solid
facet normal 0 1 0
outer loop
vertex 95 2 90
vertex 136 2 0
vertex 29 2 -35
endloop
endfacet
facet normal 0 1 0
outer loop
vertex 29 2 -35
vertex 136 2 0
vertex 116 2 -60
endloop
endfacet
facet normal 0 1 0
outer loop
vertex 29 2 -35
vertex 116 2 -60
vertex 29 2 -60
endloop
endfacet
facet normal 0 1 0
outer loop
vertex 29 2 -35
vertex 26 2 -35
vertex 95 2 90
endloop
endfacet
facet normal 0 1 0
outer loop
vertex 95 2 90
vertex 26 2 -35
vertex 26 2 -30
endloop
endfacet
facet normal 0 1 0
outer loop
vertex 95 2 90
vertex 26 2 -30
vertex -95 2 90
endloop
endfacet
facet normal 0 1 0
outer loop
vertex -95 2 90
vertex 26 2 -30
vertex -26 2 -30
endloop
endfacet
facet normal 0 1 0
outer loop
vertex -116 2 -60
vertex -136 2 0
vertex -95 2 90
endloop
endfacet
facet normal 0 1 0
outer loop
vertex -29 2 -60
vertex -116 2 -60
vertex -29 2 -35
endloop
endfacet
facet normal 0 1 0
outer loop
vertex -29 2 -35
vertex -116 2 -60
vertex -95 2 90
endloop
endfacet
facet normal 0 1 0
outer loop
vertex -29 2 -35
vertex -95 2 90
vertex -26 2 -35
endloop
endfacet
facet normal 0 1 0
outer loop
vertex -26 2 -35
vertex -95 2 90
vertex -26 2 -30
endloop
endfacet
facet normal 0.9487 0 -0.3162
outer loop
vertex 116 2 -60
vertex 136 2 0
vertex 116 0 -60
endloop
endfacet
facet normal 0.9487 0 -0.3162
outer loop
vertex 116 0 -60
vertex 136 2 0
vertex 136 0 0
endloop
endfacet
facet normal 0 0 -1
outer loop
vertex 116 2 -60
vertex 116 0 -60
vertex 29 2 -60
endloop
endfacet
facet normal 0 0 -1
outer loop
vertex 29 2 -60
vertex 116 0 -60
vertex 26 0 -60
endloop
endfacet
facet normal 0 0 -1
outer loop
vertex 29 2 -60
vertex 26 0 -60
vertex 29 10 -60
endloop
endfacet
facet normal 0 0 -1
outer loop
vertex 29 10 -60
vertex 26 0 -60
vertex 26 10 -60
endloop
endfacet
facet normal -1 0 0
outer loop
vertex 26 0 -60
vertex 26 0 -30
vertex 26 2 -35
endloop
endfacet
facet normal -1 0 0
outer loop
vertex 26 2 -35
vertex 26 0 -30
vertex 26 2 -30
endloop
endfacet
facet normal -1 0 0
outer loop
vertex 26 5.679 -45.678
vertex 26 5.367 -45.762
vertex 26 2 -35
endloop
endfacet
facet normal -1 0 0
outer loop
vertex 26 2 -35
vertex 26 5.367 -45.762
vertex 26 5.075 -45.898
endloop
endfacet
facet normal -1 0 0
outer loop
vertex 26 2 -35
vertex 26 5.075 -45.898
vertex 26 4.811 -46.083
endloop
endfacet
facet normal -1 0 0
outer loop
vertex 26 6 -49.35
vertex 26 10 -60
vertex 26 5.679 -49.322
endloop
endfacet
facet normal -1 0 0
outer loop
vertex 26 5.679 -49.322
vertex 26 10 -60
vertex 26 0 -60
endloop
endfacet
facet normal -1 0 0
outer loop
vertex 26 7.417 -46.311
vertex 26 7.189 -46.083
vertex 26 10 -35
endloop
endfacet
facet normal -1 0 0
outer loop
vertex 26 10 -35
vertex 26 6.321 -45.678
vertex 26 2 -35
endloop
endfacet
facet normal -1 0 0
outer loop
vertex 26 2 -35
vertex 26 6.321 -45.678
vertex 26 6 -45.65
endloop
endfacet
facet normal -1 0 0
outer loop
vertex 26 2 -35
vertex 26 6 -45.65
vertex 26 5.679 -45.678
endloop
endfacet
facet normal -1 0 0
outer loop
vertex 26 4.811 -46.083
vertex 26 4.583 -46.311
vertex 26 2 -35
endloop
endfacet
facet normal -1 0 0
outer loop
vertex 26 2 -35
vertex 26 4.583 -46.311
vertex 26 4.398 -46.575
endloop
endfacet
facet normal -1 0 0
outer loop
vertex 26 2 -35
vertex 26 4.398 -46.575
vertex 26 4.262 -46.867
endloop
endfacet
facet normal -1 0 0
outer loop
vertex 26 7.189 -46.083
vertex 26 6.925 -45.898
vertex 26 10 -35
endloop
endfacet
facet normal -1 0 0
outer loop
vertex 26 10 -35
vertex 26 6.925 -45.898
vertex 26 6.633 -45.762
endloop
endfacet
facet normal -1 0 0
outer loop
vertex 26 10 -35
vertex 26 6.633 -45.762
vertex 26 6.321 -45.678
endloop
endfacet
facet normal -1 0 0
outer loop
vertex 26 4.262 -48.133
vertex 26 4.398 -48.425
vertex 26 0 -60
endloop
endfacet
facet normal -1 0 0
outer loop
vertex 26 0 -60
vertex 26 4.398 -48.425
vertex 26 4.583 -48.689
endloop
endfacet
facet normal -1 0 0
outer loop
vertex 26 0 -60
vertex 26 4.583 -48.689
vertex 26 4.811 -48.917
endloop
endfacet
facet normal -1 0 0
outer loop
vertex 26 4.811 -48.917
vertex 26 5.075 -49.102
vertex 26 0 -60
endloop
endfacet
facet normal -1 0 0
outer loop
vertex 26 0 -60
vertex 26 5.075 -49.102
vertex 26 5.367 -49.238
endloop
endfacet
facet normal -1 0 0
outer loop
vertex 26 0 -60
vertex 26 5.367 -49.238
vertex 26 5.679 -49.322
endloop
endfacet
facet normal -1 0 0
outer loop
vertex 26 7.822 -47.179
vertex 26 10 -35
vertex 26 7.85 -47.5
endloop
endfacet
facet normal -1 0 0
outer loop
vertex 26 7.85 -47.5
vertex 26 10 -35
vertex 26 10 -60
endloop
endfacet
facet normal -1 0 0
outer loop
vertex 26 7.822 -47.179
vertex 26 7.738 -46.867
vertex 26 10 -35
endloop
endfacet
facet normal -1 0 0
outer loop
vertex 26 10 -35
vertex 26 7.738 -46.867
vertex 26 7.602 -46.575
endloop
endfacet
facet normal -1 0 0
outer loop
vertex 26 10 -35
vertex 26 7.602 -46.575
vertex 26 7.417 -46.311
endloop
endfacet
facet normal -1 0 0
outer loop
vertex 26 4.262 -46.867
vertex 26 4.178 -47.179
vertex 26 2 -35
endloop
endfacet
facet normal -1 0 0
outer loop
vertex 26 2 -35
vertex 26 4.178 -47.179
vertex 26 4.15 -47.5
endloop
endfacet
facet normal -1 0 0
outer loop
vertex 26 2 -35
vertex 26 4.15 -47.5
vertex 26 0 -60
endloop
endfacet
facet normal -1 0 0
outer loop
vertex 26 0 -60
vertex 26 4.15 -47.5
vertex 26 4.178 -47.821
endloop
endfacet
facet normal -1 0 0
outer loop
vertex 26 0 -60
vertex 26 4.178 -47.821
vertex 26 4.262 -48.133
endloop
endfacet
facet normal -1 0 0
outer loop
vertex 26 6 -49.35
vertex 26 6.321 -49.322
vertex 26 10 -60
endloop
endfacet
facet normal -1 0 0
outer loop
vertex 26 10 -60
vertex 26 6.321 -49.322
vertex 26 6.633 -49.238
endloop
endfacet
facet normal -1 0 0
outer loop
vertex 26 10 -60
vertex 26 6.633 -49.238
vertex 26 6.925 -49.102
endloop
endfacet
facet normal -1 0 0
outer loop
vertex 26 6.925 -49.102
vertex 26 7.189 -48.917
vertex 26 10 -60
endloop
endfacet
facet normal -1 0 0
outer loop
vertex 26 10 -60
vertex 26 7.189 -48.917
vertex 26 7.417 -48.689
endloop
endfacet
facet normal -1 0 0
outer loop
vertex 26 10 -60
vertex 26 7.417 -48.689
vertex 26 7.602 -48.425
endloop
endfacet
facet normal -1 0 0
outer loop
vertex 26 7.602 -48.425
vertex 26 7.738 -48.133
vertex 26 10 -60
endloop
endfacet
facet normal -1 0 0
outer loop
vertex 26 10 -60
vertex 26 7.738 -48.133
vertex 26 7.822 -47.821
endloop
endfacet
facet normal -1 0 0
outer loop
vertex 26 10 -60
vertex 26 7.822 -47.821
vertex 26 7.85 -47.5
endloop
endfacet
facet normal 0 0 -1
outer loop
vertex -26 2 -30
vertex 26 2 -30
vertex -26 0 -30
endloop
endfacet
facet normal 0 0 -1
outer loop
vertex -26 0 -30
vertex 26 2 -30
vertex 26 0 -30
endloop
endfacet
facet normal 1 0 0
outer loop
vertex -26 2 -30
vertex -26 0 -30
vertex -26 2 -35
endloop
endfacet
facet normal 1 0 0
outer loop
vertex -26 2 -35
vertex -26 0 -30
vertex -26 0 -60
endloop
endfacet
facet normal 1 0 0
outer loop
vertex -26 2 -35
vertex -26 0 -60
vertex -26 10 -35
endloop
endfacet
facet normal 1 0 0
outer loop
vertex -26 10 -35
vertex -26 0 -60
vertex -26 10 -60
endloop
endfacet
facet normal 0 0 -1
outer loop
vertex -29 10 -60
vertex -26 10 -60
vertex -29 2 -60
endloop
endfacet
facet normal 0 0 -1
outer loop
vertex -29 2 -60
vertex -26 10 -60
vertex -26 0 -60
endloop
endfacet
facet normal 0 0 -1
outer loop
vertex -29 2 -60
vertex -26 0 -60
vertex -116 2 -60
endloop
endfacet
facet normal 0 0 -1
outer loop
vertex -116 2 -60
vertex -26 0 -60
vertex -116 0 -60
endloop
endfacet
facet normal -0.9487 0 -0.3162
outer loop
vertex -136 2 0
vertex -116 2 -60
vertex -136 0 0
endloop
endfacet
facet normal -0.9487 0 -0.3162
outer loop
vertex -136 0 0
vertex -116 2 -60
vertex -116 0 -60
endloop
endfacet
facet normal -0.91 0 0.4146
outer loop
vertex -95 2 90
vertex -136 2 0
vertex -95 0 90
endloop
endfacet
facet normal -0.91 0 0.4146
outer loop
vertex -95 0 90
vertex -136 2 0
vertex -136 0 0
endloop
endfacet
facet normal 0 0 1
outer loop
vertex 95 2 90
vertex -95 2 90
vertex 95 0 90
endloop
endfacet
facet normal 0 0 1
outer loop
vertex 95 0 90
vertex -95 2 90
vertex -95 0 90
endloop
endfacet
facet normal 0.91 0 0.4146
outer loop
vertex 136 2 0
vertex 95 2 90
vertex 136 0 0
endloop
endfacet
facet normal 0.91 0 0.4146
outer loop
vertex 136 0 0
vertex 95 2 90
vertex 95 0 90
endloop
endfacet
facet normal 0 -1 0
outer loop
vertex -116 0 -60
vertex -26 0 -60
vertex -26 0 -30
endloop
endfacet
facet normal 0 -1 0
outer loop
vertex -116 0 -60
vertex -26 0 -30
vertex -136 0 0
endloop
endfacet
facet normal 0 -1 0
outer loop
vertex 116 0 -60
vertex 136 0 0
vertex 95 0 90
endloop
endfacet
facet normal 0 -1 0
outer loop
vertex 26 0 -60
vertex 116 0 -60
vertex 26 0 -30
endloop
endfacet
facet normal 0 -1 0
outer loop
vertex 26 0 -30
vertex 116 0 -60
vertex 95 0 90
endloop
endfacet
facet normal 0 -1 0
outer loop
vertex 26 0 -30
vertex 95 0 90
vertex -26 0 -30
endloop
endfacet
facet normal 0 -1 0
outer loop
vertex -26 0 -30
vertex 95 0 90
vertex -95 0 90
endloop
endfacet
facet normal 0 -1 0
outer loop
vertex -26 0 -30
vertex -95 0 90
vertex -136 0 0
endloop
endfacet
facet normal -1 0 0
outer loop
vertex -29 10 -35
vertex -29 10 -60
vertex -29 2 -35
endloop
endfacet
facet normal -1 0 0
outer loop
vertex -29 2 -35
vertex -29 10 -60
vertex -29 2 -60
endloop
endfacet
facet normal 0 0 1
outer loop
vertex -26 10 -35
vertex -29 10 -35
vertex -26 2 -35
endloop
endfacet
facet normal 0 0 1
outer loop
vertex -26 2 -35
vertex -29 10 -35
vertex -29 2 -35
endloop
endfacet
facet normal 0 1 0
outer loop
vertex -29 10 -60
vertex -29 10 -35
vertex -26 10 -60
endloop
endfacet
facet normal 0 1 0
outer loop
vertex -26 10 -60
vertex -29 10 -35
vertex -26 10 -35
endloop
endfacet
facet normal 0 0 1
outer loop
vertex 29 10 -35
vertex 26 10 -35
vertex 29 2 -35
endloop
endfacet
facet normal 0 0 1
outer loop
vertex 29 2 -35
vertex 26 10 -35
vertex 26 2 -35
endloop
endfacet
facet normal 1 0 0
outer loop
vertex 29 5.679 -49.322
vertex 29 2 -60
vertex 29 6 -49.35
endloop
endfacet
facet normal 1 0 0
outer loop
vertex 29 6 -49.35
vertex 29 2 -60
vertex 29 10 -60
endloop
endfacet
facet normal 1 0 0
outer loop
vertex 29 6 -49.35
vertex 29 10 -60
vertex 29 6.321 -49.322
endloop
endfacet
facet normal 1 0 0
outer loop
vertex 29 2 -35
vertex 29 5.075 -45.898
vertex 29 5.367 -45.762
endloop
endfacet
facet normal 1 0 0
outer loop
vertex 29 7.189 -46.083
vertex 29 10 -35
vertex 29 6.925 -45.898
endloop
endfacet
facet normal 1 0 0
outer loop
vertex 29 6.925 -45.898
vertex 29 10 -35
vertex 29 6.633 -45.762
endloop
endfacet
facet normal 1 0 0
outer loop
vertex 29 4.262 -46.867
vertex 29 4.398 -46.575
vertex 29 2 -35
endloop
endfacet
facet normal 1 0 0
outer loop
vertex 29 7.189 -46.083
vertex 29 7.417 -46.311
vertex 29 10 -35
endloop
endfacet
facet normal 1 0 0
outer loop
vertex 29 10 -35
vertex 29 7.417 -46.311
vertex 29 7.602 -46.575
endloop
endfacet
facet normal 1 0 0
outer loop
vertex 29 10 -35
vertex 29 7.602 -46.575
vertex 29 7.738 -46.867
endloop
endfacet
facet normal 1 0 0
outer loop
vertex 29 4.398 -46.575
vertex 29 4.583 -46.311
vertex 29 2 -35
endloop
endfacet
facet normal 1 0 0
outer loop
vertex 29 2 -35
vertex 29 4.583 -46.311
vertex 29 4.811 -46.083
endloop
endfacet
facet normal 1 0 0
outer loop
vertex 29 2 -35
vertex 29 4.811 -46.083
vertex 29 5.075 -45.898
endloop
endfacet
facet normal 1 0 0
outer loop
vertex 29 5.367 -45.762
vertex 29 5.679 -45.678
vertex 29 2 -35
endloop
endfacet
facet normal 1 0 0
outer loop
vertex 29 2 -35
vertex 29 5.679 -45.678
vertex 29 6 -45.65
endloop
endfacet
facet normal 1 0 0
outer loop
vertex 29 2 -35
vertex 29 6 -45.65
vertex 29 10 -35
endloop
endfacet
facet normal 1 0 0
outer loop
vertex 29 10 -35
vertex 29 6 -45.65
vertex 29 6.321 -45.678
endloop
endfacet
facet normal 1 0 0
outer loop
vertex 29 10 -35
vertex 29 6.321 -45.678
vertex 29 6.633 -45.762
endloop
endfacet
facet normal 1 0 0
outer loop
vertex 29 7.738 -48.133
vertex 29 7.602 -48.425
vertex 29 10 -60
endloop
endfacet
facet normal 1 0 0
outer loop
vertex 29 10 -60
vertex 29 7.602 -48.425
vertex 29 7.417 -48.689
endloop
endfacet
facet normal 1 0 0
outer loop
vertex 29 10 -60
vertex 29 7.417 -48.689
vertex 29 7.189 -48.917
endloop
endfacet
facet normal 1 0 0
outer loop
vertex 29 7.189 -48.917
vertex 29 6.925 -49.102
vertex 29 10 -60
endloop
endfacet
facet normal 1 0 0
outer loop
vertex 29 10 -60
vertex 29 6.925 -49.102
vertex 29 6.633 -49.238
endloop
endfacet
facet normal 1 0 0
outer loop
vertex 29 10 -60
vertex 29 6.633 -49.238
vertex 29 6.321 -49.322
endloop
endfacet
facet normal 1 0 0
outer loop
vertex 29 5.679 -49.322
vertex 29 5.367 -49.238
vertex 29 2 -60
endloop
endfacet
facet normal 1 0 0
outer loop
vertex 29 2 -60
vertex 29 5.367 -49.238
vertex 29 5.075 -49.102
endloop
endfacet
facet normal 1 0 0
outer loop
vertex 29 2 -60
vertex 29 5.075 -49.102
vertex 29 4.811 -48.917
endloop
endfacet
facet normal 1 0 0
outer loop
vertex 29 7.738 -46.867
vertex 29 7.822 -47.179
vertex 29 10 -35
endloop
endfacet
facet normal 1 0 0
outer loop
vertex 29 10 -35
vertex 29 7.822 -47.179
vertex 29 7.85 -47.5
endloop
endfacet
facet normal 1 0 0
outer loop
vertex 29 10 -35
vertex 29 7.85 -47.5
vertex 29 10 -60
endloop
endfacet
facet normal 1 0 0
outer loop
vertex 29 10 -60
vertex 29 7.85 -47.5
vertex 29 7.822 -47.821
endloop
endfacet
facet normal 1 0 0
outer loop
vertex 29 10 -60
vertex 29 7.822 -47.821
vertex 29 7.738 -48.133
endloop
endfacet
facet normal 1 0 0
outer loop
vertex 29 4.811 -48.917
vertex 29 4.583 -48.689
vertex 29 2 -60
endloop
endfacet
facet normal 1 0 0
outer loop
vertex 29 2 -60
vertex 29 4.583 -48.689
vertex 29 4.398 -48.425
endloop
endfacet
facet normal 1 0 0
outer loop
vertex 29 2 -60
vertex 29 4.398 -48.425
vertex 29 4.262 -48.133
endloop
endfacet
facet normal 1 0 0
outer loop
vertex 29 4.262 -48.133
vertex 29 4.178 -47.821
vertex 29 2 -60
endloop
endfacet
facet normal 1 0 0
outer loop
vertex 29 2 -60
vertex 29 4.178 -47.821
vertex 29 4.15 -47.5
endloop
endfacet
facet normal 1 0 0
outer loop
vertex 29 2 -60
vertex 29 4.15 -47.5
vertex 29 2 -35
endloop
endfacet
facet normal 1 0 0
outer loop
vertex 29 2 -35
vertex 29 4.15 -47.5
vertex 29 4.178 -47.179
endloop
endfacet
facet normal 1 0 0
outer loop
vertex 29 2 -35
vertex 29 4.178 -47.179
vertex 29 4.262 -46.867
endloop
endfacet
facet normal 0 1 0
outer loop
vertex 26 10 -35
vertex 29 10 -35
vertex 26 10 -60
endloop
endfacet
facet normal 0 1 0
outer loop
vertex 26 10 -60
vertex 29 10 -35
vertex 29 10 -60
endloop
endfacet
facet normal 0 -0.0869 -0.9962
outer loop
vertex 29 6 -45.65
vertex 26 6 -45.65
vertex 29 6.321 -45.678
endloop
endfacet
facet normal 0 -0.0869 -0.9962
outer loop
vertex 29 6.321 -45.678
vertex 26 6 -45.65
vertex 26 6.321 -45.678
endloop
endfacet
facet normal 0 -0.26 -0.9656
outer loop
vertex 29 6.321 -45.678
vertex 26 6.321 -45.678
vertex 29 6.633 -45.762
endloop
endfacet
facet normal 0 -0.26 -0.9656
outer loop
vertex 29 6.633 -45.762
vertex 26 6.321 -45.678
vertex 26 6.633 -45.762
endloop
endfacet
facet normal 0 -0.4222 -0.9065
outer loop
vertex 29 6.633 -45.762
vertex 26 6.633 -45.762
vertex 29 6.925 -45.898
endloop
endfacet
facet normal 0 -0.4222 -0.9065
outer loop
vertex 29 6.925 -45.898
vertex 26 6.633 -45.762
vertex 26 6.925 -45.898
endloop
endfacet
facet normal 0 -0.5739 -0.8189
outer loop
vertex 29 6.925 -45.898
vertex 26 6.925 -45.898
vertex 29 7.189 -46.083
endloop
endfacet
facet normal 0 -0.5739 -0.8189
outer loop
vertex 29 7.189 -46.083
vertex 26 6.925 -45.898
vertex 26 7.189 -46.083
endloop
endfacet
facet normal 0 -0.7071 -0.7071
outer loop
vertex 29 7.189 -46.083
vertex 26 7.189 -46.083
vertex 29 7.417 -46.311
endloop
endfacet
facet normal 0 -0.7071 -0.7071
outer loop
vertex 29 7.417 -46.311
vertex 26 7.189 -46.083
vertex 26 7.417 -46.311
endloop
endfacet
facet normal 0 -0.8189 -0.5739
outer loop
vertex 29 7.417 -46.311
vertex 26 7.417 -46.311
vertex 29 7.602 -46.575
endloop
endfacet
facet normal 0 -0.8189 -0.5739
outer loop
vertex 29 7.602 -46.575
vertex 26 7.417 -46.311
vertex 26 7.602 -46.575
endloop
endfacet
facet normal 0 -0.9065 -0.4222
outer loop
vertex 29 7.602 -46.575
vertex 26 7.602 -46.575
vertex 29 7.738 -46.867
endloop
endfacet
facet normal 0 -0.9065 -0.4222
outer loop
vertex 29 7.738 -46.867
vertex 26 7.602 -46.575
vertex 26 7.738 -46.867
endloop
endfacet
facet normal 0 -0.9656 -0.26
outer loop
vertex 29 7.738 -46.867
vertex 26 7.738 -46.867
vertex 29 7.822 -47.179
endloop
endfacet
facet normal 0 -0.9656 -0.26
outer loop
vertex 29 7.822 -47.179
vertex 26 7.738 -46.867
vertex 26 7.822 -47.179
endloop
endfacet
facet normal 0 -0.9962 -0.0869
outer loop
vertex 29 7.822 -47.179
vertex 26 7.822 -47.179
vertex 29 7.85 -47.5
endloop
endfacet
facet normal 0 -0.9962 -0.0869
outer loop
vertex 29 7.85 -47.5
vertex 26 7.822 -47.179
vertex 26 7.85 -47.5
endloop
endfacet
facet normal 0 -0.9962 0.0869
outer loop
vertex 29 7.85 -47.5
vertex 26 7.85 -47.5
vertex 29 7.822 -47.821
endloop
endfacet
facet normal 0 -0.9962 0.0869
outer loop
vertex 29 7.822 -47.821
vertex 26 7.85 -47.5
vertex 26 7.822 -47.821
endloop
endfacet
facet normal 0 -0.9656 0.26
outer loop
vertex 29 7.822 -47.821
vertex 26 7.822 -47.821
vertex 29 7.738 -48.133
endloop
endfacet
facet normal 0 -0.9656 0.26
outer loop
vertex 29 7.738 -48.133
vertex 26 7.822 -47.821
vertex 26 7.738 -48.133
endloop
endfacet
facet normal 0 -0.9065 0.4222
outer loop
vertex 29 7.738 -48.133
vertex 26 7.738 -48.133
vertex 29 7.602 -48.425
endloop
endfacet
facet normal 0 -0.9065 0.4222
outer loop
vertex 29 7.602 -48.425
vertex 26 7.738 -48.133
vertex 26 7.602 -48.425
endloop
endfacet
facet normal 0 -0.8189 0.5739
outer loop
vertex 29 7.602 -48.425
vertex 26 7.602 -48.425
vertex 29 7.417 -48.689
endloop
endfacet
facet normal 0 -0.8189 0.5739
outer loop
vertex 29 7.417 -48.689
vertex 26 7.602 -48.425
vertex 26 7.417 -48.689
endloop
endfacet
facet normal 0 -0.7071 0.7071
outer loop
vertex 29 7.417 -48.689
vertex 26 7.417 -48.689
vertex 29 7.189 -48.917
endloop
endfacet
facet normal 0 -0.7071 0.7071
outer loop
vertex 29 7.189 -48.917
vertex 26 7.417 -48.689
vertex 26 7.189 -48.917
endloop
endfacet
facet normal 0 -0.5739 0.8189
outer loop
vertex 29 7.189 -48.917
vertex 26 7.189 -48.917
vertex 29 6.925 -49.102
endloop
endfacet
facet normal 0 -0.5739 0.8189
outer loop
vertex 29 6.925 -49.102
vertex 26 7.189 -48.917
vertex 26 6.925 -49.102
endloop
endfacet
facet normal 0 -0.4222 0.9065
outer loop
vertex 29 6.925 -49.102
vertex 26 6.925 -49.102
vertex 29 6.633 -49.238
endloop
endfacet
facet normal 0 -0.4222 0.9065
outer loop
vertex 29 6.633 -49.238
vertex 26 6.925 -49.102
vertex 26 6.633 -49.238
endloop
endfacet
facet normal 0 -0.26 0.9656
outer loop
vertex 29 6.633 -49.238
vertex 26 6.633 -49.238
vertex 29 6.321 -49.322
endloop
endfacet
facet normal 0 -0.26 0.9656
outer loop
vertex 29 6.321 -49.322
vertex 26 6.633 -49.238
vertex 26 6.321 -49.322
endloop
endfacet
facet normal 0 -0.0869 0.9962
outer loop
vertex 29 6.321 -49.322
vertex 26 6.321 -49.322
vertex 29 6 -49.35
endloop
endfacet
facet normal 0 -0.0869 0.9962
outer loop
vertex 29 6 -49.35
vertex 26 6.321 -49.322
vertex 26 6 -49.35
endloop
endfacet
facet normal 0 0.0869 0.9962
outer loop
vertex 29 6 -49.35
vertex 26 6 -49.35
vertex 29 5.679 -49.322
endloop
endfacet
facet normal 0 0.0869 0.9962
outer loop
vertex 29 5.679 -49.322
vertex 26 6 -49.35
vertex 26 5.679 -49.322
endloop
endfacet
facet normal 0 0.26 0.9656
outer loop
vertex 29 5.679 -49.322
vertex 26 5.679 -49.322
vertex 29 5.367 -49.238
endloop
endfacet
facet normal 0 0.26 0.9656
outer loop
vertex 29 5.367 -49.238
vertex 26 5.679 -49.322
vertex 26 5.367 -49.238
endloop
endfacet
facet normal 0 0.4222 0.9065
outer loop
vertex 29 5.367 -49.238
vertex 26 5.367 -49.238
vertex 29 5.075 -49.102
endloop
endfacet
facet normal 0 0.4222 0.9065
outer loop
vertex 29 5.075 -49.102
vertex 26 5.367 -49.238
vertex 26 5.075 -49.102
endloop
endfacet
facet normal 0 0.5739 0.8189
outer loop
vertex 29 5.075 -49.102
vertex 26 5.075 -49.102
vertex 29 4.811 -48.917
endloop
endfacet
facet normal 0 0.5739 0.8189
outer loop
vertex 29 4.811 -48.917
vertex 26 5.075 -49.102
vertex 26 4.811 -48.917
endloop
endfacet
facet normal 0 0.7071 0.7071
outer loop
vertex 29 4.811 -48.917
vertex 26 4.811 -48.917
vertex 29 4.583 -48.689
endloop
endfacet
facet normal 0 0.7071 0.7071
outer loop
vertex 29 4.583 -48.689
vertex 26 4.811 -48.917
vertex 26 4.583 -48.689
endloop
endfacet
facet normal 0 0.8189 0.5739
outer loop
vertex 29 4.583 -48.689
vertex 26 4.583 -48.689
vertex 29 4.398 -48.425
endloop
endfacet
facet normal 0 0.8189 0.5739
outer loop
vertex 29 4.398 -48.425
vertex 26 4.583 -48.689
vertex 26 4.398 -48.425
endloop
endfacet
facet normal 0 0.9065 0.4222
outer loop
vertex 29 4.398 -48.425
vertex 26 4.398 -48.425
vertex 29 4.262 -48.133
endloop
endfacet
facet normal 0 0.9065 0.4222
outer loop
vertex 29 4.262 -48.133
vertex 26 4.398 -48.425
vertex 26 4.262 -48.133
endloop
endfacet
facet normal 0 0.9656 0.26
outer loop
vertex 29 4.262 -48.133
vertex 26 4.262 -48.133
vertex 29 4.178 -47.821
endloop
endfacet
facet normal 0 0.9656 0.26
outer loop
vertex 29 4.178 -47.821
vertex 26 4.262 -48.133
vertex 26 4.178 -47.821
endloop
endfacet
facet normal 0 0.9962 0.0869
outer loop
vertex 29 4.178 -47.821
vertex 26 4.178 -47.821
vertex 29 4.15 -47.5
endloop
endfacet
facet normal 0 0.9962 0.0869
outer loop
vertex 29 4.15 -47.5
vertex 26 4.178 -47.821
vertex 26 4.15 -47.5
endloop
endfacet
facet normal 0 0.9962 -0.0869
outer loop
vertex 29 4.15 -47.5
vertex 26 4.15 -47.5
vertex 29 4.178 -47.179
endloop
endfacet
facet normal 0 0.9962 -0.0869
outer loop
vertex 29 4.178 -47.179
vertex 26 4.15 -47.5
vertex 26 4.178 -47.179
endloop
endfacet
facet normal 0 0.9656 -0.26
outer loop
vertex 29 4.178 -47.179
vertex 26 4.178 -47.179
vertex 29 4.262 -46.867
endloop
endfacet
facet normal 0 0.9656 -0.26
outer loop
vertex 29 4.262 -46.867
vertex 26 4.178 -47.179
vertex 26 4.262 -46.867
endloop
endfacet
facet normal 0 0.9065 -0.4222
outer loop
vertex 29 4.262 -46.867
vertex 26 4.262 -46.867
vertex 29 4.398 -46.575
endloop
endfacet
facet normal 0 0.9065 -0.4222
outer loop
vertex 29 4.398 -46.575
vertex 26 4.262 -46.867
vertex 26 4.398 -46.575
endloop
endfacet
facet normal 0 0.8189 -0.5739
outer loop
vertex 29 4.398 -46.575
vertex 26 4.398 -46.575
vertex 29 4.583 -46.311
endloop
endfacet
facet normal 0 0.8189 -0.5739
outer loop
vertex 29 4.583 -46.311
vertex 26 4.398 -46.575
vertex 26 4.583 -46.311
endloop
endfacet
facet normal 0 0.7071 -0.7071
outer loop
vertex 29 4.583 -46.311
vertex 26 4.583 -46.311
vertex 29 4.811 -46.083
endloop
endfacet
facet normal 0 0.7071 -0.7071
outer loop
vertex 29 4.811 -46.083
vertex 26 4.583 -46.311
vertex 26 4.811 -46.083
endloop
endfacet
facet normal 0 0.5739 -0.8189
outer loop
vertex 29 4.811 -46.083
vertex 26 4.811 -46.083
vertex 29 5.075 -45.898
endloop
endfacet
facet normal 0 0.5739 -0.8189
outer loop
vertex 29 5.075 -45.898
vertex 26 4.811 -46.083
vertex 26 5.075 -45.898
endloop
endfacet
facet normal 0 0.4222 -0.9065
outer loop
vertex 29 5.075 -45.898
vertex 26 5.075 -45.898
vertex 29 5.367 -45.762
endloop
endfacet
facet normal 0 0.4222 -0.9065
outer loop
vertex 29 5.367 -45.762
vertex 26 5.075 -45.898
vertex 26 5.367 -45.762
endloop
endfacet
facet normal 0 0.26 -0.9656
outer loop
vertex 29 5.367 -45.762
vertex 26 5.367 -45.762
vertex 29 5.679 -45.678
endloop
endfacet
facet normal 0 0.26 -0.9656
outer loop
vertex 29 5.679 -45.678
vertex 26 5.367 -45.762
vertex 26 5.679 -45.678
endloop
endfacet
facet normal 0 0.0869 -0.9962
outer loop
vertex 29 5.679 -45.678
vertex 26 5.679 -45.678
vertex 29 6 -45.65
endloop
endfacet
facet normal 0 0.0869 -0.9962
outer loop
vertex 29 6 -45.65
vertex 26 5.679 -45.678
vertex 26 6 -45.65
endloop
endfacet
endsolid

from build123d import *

# Parameters (mm, degrees)
EXTRUDE_1_DEPTH     = 2
SKETCH_2_W          = 3
SKETCH_2_H          = 25
EXTRUDE_2_DEPTH     = 8
SKETCH_3_R          = 1.85
CUT_EXTRUDE_1_DEPTH = 8


with BuildPart() as part:
    # 草图1 → 凸台-拉伸1 (new body)
    with BuildSketch(Plane(origin=(0, 0, 0), x_dir=(1, 0, 0), z_dir=(0, 1, 0))):
        Polygon((26, 30), (-26, 30), (-26, 60), (-116, 60), (-136, 0), (-95, -90), (95, -90), (136, 0), (116, 60), (26, 60), align=None)
    extrude(amount=EXTRUDE_1_DEPTH)

    # 草图2 → 凸台-拉伸2 (add)
    with BuildSketch(Plane(origin=(0, 2, 0), x_dir=(1, 0, 0), z_dir=(0, 1, 0))):
        with Locations((27.5, 47.5)):
            Rectangle(SKETCH_2_W, SKETCH_2_H)
        with Locations((-27.5, 47.5)):
            Rectangle(SKETCH_2_W, SKETCH_2_H)
    extrude(amount=EXTRUDE_2_DEPTH)

    # 草图3 → 切除-拉伸1 (cut)
    with BuildSketch(Plane.ZY.offset(-26)):
        with Locations((-47.5, 6)):
            Circle(SKETCH_3_R)
    extrude(amount=-CUT_EXTRUDE_1_DEPTH, mode=Mode.SUBTRACT)


solid = part.part
